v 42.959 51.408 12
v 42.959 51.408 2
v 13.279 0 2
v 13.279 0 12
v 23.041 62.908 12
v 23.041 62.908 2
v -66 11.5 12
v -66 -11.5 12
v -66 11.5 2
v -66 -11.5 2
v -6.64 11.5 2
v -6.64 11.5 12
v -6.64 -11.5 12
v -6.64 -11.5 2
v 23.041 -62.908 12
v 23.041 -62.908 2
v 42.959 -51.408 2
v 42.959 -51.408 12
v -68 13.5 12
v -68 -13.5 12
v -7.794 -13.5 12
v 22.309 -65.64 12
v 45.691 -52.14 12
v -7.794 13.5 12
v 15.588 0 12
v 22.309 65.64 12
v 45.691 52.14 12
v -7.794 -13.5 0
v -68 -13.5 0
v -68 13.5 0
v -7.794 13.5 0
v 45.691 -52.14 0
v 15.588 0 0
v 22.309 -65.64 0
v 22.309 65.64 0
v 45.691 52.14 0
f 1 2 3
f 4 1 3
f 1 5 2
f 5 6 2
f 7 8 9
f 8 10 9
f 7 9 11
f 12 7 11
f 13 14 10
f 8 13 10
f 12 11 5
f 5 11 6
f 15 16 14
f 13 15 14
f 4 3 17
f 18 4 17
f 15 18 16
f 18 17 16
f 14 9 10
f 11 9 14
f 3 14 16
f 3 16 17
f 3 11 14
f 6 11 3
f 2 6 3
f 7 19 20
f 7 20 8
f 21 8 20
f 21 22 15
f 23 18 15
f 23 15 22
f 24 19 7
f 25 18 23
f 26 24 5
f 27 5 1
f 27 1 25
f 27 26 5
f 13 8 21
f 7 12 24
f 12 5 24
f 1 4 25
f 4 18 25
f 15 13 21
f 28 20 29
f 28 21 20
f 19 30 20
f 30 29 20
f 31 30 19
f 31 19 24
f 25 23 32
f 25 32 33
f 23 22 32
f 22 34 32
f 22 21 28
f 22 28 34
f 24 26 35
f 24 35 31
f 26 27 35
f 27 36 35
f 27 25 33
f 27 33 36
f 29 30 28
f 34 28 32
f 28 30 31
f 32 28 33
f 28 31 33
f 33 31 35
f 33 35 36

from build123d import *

# Parameters (mm, degrees)
PAD002_DEPTH = 12
PAD_DEPTH    = 2
ARRAY_COUNT  = 3


with BuildPart() as pad002:
    # Sketch002 → Pad002 (new body)
    with BuildSketch(Plane.XY):
        Polygon((-6.6395280957, 11.5), (-7.7942286341, 13.5), (-68, 13.5), (-68, -13.5), (-7.7942286341, -13.5), (-6.6395280957, -11.5), (-66, -11.5), (-66, 11.5), align=None)
    extrude(amount=PAD002_DEPTH)


with BuildPart() as array:
    # Sketch → Pad (new body)
    with BuildSketch(Plane.XY):
        Polygon((0, 0), (-7.7942286341, 13.5), (-68, 13.5), (-68, -13.5), (-7.7942286341, -13.5), align=None)
    extrude(amount=PAD_DEPTH)

    # Fusion: union Pad002
    add(pad002.part)

    # Array: Array ×3 about axis
    array_axis = Axis((0, 0, 0), (0, 0, 1))


with BuildPart() as array_1:
    add(array.part)
    for i in range(1, ARRAY_COUNT):
        add(array.part.rotate(array_axis, i * 360 / ARRAY_COUNT))


solid = array_1.part
